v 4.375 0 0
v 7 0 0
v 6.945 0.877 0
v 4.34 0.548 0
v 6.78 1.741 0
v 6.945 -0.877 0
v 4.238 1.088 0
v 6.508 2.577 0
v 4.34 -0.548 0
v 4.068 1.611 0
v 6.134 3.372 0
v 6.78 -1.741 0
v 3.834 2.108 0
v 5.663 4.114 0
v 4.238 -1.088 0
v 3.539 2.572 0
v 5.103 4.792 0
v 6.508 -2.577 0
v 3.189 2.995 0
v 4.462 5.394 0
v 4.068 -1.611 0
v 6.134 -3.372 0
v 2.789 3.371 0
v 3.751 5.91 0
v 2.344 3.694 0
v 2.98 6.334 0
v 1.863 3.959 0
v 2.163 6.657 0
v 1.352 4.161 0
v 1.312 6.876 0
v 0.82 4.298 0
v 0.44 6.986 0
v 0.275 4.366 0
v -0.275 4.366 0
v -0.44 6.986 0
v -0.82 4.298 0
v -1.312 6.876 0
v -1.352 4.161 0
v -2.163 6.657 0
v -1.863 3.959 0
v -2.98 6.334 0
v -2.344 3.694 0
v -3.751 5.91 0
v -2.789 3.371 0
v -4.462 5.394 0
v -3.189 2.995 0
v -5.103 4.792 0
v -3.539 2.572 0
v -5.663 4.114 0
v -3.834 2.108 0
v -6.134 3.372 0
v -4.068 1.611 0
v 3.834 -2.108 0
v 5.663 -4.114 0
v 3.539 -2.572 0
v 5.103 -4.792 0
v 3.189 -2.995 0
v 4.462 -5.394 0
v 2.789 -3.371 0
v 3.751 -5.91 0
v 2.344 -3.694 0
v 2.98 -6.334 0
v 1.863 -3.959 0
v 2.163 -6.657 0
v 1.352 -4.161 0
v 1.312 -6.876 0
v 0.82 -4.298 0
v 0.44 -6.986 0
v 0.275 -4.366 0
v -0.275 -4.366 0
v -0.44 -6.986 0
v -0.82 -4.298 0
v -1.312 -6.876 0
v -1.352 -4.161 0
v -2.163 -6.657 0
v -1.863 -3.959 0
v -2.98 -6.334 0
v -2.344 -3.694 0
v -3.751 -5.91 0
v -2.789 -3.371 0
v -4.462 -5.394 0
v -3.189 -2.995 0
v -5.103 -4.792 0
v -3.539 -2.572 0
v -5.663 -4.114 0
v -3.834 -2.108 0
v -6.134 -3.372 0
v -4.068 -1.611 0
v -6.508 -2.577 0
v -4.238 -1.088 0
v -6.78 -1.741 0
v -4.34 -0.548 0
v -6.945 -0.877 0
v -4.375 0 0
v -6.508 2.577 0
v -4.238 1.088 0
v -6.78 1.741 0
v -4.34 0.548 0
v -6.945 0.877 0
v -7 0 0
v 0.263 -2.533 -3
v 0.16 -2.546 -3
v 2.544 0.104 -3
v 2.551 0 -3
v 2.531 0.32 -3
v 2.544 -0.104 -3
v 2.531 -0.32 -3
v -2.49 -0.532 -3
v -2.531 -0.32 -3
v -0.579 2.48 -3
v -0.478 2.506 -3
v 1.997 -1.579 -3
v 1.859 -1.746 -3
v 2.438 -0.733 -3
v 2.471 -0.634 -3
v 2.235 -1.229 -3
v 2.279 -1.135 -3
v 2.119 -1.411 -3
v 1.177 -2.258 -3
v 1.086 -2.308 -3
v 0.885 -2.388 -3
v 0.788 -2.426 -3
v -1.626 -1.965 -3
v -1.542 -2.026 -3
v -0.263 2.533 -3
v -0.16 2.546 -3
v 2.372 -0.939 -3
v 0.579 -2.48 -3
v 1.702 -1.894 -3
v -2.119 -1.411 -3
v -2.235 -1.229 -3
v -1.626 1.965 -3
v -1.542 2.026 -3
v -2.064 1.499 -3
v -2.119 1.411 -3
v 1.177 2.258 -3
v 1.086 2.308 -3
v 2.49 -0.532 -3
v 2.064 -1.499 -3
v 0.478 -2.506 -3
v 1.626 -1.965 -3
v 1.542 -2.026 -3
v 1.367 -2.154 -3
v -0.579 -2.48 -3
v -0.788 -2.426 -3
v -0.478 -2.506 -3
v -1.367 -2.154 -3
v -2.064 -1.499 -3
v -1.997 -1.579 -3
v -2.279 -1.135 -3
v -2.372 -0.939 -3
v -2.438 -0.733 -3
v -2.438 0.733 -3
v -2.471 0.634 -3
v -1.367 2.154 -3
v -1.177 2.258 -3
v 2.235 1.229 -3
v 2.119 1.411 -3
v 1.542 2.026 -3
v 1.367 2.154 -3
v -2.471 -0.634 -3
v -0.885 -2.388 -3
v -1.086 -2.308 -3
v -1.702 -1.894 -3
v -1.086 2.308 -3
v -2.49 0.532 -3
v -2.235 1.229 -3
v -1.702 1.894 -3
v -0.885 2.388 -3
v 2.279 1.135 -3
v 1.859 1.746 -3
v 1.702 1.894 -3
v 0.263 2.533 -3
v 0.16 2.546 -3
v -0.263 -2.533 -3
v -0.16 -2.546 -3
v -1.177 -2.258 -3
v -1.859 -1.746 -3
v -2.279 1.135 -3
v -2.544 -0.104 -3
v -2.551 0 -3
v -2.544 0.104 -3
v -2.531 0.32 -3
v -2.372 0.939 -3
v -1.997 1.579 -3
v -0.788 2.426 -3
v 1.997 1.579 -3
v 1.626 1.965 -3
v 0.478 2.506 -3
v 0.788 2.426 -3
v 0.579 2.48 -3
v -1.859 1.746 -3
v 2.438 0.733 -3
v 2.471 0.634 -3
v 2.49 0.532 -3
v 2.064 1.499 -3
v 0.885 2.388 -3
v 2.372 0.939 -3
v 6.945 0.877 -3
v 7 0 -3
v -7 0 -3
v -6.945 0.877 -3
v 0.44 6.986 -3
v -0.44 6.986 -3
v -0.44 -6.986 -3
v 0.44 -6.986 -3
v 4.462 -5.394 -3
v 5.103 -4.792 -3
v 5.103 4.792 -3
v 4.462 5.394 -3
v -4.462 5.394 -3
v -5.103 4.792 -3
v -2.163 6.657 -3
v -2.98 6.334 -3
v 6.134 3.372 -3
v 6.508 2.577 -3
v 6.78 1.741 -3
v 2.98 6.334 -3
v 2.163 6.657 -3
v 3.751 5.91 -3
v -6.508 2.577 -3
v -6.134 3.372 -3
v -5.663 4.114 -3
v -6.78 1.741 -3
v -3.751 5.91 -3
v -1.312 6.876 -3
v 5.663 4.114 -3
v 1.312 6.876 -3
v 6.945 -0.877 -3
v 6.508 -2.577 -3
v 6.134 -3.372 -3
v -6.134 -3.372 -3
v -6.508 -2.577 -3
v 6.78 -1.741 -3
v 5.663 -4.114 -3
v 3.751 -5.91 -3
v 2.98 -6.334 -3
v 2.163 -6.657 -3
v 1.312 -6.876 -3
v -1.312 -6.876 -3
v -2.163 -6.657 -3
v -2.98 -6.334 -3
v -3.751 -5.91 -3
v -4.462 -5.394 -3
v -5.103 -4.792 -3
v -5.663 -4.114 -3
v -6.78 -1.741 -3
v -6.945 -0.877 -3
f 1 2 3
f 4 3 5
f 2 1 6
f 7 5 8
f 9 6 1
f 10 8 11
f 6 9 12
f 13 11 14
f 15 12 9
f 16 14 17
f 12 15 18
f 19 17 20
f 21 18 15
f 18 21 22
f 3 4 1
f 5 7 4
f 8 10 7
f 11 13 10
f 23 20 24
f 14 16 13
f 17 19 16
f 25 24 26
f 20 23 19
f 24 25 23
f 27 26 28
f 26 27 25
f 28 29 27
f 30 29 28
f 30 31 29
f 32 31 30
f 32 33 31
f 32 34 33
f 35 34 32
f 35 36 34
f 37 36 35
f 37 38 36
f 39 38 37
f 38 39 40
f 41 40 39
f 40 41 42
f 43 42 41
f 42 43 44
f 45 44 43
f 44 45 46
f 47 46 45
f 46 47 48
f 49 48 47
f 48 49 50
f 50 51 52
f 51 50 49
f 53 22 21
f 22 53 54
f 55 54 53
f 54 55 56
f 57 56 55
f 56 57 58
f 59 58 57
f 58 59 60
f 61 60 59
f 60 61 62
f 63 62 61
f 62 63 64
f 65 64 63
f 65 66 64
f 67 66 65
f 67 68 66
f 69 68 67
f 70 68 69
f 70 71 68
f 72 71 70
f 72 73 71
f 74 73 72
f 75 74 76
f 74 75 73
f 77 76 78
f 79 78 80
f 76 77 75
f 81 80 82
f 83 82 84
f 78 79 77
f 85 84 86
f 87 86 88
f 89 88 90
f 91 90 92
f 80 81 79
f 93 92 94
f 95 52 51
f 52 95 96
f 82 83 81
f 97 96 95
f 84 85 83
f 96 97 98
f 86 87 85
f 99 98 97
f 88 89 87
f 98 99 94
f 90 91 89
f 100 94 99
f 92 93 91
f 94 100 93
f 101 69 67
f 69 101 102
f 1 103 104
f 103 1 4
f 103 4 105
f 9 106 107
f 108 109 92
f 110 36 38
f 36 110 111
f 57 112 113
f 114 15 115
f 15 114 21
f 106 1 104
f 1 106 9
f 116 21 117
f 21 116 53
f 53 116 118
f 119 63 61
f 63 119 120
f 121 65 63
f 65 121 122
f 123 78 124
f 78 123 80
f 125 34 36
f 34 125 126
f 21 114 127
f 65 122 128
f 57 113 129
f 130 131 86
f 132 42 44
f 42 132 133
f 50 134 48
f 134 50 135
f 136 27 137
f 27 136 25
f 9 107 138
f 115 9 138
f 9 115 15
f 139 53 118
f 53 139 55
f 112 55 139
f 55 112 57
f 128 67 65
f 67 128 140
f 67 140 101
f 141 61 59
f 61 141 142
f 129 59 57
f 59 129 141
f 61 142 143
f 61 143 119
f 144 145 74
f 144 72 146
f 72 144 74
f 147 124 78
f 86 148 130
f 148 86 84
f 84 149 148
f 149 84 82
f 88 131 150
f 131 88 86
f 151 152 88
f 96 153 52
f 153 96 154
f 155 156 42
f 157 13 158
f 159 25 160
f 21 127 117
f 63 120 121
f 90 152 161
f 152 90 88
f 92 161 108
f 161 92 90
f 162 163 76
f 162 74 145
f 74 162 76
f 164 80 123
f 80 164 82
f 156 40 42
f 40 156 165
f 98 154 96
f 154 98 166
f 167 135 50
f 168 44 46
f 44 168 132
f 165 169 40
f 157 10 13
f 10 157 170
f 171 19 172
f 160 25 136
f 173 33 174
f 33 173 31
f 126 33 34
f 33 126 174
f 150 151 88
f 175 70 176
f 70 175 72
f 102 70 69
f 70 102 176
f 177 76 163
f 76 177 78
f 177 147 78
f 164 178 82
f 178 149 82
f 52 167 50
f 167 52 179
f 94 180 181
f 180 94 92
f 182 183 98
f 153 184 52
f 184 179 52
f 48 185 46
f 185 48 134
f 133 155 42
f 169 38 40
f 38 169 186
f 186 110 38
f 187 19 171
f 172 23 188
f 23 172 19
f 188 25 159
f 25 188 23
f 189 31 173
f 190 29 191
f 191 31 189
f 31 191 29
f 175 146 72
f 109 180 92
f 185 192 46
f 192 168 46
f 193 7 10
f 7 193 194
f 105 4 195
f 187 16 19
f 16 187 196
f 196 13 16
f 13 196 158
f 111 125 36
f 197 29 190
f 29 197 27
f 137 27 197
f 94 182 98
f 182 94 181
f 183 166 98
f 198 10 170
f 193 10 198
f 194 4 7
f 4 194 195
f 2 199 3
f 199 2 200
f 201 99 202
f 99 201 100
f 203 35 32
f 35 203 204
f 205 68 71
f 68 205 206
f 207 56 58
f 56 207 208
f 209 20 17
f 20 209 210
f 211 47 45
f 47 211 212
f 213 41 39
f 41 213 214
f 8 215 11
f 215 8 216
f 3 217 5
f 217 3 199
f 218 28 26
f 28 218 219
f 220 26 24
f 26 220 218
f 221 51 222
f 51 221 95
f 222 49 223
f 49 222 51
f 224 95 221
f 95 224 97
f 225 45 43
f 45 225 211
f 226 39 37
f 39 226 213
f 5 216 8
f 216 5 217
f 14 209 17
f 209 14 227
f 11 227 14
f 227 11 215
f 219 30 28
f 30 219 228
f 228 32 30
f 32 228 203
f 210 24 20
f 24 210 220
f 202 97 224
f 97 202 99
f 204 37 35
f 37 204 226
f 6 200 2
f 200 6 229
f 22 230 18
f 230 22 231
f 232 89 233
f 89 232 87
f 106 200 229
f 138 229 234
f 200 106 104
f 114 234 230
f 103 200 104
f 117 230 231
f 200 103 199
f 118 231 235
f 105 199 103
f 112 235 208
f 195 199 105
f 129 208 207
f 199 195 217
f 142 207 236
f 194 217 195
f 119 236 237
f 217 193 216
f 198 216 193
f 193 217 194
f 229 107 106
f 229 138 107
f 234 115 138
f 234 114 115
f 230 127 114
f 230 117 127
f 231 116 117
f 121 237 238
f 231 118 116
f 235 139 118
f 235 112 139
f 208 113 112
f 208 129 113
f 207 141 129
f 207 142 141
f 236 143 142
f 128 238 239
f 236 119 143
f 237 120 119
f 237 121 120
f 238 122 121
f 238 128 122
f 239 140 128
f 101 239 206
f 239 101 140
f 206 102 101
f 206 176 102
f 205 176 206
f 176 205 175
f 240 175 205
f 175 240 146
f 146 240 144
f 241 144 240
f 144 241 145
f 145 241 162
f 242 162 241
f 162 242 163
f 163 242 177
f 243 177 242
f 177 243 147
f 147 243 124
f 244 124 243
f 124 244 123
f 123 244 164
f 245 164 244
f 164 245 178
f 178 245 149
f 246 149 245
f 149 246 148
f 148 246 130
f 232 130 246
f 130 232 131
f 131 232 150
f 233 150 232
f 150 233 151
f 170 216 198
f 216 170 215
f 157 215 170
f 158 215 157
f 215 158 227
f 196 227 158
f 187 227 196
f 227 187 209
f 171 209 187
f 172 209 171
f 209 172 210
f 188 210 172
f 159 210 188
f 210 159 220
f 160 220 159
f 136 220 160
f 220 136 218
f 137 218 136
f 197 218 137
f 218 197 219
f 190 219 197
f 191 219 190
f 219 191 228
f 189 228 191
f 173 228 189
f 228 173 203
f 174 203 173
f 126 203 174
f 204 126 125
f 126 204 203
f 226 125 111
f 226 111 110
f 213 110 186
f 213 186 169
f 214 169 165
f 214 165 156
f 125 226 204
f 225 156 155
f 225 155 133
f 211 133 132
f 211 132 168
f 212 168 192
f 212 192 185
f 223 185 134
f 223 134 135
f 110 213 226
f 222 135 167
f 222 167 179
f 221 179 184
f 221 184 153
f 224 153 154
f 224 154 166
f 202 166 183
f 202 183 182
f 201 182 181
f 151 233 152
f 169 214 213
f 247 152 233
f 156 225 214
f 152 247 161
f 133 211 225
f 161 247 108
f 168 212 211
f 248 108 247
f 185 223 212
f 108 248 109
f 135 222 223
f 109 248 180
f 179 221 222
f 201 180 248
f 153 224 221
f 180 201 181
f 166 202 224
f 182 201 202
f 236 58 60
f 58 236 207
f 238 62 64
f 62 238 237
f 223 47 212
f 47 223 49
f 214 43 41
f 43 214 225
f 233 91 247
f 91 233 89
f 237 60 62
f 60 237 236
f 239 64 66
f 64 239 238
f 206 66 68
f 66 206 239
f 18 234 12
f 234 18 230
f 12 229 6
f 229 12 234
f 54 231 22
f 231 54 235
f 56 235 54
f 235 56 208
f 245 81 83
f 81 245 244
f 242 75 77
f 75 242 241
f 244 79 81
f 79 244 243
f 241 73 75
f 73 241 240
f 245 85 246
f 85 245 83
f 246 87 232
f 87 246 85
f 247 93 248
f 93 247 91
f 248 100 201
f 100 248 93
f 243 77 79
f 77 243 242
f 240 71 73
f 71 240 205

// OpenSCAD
$fn = 50;


difference() {
	union() {
		translate(v = [0, 0, -3.0000000000]) {
			cylinder(h = 3, r = 7.0000000000);
		}
	}
	union() {
		translate(v = [0, 0, 0]) {
			rotate(a = [0, 0, 0]) {
				difference() {
					union() {
						translate(v = [0, 0, -3.0000000000]) {
							cylinder(h = 3, r = 2.0000000000);
						}
						translate(v = [0, 0, -3.7000000000]) {
							cylinder(h = 3.7000000000, r1 = 2.1250000000, r2 = 4.3750000000);
						}
						translate(v = [0, 0, -3.0000000000]) {
							cylinder(h = 3, r = 2.1250000000);
						}
						translate(v = [0, 0, -3.0000000000]) {
							cylinder(h = 3, r = 2.0000000000);
						}
					}
					union();
				}
			}
		}
	}
}
